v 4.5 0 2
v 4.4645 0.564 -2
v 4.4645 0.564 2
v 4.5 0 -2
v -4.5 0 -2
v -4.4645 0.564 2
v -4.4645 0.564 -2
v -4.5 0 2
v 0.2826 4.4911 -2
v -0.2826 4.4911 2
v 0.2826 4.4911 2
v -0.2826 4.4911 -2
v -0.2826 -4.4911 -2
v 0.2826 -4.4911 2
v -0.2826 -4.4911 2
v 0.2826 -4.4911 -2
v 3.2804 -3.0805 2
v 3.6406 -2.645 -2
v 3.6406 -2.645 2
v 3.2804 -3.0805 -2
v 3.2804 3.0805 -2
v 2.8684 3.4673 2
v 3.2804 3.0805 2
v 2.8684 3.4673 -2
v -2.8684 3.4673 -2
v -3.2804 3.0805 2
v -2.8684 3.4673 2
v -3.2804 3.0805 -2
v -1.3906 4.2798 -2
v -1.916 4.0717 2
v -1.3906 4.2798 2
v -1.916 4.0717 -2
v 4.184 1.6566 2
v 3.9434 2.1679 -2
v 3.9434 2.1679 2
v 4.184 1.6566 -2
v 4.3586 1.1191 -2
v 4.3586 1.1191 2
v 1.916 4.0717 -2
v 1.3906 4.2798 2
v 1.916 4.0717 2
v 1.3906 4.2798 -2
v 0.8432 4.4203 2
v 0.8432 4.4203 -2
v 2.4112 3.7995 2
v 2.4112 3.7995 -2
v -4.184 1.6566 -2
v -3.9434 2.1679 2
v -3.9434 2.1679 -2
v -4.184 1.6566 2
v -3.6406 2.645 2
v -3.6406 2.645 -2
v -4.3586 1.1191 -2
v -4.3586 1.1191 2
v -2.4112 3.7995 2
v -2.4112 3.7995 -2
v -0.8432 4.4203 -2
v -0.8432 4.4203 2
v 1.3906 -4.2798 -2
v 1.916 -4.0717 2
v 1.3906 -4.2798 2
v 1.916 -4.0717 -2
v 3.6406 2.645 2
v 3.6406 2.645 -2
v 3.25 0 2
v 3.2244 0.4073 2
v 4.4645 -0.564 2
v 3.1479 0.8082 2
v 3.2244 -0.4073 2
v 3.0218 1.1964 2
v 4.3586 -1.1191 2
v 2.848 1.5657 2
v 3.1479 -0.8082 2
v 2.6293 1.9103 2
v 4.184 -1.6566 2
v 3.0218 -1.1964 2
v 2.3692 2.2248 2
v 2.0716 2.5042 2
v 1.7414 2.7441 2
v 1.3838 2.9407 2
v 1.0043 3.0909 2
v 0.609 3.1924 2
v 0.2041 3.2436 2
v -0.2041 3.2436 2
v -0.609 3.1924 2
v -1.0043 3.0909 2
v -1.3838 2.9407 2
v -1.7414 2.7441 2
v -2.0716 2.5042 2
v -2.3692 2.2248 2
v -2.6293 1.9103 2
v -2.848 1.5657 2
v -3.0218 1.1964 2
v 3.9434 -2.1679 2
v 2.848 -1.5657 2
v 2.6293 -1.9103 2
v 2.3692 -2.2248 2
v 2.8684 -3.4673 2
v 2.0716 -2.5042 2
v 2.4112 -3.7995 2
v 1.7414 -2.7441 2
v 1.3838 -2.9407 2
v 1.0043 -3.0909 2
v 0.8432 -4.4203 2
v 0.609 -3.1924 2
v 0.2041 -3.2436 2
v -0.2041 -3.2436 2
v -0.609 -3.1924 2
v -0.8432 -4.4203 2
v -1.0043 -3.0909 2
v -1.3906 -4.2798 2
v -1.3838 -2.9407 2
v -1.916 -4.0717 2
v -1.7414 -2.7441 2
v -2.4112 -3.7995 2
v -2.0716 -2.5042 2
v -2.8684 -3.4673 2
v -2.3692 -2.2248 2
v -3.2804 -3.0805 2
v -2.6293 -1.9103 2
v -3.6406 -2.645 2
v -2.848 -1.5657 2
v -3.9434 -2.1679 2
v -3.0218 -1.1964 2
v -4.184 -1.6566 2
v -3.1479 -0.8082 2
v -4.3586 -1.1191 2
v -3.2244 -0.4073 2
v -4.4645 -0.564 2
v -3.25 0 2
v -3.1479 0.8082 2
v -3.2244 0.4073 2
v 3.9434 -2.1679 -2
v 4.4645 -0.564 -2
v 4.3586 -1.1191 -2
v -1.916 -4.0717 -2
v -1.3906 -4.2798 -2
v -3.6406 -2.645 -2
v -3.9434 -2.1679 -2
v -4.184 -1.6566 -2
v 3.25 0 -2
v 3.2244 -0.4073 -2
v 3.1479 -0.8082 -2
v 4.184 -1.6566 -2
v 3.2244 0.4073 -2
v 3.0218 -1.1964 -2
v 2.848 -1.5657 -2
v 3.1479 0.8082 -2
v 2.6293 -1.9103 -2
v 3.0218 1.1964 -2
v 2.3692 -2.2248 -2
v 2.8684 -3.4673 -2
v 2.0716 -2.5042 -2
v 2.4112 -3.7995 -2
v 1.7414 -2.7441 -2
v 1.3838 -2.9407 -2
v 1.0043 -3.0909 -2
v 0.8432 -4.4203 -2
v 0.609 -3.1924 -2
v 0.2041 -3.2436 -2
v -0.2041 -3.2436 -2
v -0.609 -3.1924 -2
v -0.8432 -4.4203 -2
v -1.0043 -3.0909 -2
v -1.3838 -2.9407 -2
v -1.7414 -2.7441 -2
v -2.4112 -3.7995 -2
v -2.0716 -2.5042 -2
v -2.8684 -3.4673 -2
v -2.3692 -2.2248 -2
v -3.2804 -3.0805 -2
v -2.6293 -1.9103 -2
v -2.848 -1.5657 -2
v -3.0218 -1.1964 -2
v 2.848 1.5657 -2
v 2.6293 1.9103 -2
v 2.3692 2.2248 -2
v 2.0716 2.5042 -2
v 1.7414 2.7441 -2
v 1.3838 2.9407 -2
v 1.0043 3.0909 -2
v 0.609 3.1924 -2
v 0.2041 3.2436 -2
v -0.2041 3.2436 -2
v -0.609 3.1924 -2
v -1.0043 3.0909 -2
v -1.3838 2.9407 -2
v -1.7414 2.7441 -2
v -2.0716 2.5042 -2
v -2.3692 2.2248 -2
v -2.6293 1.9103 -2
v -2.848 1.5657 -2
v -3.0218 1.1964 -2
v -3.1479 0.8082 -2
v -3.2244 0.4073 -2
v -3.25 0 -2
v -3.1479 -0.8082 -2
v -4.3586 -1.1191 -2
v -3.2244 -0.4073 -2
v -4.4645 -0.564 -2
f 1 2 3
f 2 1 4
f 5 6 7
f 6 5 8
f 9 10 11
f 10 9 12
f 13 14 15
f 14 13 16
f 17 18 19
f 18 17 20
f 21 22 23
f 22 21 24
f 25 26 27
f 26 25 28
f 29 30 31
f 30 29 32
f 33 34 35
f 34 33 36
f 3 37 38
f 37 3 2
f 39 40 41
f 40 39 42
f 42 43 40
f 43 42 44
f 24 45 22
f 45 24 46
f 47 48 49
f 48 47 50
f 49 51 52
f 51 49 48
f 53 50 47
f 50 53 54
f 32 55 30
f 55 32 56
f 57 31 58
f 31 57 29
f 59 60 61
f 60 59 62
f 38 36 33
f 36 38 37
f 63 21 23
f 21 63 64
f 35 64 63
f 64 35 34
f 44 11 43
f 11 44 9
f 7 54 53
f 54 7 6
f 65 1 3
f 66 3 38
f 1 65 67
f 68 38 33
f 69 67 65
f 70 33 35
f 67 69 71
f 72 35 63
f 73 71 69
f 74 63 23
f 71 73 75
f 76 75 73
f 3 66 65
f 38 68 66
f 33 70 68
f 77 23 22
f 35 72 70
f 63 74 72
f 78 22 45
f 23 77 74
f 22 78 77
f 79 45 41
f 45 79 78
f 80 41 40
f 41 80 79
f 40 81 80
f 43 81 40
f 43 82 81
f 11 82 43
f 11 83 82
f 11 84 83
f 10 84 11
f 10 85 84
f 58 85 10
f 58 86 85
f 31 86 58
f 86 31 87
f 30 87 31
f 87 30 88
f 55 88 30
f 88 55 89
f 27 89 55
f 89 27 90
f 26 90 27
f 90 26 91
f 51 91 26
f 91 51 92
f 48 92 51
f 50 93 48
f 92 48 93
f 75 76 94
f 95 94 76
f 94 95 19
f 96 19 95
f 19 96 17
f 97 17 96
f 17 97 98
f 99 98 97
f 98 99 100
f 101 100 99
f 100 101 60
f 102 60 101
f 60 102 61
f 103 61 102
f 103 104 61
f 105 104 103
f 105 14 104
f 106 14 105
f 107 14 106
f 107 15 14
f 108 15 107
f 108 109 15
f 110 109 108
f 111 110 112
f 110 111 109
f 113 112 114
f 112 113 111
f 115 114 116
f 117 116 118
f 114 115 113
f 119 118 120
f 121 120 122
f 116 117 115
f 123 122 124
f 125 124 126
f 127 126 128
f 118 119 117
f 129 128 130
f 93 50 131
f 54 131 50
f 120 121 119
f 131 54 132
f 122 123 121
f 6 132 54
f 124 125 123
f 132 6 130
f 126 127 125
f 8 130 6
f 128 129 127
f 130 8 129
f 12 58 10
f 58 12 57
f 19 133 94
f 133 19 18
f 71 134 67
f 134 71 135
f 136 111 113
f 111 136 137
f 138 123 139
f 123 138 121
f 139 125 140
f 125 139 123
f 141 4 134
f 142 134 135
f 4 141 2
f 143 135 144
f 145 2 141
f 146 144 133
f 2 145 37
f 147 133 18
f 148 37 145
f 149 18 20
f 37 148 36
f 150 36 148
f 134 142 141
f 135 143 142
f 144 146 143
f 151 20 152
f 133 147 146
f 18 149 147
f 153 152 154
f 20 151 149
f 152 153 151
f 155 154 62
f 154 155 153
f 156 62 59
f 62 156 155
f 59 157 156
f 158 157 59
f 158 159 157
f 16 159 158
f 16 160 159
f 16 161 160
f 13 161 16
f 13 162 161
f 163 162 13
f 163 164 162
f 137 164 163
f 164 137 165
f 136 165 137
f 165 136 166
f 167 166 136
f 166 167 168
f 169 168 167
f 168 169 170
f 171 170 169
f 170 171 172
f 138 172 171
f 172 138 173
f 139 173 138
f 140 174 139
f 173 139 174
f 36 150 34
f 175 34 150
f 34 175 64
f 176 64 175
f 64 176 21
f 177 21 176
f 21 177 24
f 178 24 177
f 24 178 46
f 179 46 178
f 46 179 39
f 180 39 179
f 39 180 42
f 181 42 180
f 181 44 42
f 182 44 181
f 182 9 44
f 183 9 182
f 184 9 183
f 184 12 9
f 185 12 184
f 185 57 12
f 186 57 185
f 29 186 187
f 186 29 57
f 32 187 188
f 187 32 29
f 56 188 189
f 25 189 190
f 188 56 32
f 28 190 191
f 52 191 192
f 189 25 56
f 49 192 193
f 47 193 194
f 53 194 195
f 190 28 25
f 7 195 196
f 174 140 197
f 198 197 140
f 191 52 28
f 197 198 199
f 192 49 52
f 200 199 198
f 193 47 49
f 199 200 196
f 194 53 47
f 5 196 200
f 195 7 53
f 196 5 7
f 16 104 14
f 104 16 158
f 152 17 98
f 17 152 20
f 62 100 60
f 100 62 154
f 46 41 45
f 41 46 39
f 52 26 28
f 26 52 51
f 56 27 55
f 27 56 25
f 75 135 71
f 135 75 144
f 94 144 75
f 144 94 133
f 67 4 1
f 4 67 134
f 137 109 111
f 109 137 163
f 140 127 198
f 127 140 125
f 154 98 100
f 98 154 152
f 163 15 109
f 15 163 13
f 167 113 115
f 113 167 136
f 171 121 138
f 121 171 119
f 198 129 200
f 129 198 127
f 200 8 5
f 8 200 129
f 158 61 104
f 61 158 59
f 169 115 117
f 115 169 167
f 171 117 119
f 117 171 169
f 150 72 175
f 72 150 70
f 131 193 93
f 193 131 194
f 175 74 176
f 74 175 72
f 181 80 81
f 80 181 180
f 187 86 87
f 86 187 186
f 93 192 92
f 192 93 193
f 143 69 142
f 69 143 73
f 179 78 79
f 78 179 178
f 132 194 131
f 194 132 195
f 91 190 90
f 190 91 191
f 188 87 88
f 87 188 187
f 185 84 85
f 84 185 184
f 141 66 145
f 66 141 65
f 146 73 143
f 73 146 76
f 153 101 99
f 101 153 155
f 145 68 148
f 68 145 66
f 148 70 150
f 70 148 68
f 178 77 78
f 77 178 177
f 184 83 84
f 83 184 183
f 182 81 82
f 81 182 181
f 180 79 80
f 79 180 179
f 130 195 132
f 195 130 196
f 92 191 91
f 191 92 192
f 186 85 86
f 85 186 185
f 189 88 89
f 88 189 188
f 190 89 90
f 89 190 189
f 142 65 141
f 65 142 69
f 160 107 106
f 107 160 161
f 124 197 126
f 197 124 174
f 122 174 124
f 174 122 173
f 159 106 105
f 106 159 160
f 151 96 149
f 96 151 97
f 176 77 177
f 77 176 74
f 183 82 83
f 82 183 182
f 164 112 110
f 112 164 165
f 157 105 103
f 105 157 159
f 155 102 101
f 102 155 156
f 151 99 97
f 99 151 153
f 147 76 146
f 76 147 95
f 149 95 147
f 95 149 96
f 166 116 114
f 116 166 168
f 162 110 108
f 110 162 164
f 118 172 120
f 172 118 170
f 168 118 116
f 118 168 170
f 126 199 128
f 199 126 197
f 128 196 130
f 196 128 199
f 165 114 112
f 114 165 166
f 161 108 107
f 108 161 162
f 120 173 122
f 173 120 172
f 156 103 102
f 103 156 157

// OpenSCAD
$fn = 50;


difference() {
	union() {
		translate(v = [0, 0, -2.0000000000]) {
			cylinder(h = 4, r = 4.5000000000);
		}
	}
	union() {
		translate(v = [0, 0, -100.0000000000]) {
			cylinder(h = 200, r = 3.2500000000);
		}
	}
}
